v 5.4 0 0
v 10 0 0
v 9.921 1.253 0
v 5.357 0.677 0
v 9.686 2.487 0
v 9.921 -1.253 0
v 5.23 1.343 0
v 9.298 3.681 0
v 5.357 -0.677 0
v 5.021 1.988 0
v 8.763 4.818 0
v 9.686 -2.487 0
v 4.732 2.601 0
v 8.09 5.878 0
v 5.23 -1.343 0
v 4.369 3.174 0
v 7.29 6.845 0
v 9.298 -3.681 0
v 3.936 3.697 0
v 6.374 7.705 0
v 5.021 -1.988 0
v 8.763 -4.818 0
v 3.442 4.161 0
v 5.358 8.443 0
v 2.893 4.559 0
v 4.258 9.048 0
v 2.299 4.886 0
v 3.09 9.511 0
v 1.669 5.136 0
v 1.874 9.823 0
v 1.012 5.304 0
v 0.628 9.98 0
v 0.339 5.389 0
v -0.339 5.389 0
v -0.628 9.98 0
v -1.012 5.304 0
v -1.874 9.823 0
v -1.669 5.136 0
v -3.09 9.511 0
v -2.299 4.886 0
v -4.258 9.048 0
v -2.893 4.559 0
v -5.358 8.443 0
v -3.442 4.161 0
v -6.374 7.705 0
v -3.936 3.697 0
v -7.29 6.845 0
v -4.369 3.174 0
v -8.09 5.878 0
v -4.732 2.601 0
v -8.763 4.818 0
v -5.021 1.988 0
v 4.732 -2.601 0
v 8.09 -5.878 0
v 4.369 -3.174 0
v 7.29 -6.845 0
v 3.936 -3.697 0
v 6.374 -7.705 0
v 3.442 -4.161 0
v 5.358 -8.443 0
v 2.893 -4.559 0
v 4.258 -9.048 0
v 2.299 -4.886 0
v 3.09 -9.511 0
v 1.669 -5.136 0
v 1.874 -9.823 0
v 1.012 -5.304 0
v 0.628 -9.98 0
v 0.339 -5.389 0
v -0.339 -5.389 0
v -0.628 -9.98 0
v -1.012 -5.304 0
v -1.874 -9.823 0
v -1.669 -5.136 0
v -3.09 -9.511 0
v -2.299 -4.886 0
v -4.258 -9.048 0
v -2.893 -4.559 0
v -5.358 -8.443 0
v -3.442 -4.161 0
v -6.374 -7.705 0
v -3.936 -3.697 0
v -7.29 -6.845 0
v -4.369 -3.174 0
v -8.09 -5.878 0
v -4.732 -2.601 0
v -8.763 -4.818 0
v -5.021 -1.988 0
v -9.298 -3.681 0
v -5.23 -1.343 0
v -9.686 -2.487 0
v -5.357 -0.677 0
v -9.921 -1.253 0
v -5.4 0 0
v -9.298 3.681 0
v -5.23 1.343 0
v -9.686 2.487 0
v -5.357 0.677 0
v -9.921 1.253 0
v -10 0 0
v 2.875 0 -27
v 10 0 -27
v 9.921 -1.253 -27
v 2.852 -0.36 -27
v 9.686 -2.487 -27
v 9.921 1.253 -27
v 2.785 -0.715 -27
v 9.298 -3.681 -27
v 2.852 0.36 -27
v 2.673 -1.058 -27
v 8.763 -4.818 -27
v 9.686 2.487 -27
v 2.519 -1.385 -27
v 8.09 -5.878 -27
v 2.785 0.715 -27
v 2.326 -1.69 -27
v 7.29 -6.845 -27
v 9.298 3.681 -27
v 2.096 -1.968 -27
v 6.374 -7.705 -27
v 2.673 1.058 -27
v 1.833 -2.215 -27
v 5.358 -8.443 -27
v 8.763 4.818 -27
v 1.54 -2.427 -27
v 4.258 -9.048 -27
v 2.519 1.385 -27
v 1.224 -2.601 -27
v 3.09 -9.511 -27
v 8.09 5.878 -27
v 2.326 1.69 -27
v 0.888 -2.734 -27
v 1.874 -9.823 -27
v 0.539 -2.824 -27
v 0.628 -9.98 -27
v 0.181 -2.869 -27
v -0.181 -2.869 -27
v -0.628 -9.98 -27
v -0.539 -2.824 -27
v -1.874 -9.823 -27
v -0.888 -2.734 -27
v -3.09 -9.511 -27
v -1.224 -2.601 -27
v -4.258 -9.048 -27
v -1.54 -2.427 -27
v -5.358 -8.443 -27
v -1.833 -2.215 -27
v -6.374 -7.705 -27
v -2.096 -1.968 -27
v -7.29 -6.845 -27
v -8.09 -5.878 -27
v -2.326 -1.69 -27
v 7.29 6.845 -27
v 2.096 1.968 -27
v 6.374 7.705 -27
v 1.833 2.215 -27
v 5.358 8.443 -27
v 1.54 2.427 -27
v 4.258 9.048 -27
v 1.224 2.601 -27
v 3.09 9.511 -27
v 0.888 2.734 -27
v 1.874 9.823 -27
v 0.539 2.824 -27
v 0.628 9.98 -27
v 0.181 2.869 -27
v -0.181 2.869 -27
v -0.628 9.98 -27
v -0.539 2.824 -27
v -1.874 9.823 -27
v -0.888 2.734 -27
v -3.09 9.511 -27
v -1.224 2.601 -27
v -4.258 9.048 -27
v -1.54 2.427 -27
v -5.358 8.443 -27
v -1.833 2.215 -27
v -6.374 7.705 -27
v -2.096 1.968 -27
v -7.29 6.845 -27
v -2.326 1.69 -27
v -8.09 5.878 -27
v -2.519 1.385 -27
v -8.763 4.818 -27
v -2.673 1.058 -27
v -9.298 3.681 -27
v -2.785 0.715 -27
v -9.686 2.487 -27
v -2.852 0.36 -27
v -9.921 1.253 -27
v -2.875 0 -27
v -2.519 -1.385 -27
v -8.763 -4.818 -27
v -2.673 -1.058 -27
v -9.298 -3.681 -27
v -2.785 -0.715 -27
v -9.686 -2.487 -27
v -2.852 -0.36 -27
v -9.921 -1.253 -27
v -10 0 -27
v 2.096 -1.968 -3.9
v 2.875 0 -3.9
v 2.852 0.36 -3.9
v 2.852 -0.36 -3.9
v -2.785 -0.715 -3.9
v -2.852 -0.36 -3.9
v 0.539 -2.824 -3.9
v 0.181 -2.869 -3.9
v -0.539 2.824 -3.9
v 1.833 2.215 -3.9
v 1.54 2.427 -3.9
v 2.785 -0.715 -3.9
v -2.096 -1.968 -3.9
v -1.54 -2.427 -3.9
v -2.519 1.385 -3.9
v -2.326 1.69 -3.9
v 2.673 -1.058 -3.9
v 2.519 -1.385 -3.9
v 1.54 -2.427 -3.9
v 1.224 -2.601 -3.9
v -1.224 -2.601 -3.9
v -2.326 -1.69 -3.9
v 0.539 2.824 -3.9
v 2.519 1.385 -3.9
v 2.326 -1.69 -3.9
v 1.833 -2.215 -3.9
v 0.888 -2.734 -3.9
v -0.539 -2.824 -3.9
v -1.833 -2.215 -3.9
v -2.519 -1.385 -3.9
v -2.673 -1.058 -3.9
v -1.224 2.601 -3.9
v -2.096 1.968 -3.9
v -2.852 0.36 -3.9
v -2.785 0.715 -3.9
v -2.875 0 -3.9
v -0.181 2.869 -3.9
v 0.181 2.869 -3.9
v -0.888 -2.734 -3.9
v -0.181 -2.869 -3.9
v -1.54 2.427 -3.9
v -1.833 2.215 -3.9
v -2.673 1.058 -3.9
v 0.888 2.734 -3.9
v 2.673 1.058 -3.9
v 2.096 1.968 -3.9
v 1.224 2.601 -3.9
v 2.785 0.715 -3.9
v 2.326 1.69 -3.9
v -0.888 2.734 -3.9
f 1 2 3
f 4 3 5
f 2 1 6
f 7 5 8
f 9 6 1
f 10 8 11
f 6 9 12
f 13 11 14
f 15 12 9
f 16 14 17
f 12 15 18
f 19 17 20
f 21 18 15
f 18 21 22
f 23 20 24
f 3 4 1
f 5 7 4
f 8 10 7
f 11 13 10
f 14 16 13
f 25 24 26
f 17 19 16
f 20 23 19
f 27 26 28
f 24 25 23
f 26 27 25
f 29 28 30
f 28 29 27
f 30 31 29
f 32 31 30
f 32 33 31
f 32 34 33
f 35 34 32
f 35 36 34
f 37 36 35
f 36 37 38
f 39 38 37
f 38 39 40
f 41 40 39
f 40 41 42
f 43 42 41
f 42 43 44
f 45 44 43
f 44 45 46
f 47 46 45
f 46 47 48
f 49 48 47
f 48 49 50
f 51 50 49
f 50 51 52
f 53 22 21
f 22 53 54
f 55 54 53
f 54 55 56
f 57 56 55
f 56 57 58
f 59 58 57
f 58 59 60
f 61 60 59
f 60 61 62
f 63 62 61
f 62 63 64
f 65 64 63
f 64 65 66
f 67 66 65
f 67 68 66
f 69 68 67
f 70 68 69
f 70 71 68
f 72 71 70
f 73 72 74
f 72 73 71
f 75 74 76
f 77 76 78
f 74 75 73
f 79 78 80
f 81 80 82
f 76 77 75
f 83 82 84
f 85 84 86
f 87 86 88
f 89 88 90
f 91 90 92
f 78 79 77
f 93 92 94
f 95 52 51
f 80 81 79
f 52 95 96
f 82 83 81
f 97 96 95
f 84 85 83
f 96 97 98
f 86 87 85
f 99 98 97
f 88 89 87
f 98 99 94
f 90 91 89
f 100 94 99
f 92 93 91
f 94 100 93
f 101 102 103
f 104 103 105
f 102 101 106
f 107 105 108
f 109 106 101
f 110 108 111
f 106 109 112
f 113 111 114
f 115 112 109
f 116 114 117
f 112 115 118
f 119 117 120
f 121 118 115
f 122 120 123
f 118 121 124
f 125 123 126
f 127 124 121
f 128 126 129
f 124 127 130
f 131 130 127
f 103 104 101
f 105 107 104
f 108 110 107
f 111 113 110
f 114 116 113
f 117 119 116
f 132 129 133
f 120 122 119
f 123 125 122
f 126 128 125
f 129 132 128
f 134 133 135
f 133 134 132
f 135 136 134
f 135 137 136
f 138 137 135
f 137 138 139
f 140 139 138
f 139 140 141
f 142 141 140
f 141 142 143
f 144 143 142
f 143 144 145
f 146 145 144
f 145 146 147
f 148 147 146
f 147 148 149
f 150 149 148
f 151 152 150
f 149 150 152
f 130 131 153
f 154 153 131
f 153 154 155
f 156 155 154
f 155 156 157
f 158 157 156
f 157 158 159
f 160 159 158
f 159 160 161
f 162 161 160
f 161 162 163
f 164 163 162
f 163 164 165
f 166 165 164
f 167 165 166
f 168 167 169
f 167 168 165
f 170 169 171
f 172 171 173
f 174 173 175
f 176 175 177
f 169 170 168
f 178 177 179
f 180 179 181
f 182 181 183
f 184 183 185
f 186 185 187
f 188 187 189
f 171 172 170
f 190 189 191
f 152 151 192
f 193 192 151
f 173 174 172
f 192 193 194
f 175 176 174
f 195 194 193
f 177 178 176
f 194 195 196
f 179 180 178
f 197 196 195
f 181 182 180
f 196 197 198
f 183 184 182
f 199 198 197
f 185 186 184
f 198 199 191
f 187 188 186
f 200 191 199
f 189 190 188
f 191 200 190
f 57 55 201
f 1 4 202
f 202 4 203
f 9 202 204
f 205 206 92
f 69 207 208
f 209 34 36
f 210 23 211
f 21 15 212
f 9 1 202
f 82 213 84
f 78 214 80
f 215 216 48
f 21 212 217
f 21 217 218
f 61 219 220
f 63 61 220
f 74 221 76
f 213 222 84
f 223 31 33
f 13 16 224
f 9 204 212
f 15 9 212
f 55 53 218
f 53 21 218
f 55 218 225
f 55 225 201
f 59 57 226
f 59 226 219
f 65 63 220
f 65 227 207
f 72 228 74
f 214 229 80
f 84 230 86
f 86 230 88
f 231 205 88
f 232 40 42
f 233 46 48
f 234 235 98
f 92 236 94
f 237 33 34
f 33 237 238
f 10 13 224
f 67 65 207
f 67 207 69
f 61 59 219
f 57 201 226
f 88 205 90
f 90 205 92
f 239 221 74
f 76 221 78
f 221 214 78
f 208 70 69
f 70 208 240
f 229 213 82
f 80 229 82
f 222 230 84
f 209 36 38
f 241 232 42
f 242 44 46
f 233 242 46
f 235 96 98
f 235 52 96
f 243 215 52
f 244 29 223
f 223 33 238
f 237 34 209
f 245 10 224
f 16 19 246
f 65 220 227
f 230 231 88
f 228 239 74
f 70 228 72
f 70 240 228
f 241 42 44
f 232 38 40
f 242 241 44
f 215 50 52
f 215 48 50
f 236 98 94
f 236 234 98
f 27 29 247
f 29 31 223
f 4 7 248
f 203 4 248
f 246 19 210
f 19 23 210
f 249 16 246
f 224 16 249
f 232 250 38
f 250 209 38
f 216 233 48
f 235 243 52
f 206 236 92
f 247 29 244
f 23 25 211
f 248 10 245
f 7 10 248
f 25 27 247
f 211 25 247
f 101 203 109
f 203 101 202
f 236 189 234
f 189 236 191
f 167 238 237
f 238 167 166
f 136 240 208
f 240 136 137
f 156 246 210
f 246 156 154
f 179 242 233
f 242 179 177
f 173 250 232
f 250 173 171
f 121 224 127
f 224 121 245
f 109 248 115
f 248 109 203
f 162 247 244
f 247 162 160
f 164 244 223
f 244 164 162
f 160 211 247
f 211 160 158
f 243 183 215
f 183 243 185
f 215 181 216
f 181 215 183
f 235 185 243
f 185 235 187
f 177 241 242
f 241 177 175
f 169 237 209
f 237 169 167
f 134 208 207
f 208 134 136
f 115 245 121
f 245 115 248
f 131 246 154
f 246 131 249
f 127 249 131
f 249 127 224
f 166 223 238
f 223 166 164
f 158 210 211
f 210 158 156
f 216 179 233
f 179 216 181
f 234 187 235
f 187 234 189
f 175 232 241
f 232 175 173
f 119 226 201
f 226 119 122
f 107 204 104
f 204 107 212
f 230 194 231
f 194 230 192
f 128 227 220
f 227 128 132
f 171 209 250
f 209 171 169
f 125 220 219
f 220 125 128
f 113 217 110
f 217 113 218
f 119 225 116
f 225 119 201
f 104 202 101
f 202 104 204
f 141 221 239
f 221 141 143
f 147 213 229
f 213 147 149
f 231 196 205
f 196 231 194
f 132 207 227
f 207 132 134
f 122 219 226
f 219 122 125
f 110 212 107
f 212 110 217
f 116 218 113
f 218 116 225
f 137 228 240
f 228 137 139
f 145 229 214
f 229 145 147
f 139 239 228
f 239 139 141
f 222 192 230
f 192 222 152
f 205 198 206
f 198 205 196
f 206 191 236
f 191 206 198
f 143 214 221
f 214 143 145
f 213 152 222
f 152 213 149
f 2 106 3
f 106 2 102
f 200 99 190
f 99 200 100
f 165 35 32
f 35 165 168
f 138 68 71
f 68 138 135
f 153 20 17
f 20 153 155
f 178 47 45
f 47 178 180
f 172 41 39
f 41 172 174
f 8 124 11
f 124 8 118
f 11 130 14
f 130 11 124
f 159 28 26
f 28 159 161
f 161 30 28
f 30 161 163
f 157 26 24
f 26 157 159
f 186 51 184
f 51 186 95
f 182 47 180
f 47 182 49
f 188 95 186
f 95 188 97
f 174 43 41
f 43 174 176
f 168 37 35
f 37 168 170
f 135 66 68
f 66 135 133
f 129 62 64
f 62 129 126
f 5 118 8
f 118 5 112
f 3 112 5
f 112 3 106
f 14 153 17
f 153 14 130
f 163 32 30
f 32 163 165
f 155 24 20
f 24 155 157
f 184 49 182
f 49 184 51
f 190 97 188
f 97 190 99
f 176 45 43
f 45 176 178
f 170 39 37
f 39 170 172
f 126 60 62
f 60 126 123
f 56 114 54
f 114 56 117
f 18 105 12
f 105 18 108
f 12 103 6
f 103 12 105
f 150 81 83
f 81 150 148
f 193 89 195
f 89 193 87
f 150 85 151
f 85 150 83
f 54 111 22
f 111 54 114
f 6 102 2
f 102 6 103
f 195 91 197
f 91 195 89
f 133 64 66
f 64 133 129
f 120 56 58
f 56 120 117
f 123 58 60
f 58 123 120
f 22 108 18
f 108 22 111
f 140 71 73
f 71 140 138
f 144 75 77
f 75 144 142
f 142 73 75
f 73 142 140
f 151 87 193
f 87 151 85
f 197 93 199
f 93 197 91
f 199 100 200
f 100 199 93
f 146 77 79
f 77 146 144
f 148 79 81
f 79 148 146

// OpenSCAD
$fn = 50;


difference() {
	union() {
		translate(v = [0, 0, -27.0000000000]) {
			cylinder(h = 27, r = 10.0000000000);
		}
		cylinder(h = 0, r = 13.0000000000);
	}
	union() {
		translate(v = [0, 0, 0]) {
			rotate(a = [0, 0, 0]) {
				difference() {
					union() {
						#translate(v = [0, 0, -27.0000000000]) {
							cylinder(h = 27, r = 2.6000000000);
						}
						#translate(v = [0, 0, -3.9000000000]) {
							cylinder(h = 3.9000000000, r1 = 2.8750000000, r2 = 5.4000000000);
						}
						#translate(v = [0, 0, -27.0000000000]) {
							cylinder(h = 27, r = 2.8750000000);
						}
						#translate(v = [0, 0, -27.0000000000]) {
							cylinder(h = 27, r = 2.6000000000);
						}
					}
					union();
				}
			}
		}
	}
}
